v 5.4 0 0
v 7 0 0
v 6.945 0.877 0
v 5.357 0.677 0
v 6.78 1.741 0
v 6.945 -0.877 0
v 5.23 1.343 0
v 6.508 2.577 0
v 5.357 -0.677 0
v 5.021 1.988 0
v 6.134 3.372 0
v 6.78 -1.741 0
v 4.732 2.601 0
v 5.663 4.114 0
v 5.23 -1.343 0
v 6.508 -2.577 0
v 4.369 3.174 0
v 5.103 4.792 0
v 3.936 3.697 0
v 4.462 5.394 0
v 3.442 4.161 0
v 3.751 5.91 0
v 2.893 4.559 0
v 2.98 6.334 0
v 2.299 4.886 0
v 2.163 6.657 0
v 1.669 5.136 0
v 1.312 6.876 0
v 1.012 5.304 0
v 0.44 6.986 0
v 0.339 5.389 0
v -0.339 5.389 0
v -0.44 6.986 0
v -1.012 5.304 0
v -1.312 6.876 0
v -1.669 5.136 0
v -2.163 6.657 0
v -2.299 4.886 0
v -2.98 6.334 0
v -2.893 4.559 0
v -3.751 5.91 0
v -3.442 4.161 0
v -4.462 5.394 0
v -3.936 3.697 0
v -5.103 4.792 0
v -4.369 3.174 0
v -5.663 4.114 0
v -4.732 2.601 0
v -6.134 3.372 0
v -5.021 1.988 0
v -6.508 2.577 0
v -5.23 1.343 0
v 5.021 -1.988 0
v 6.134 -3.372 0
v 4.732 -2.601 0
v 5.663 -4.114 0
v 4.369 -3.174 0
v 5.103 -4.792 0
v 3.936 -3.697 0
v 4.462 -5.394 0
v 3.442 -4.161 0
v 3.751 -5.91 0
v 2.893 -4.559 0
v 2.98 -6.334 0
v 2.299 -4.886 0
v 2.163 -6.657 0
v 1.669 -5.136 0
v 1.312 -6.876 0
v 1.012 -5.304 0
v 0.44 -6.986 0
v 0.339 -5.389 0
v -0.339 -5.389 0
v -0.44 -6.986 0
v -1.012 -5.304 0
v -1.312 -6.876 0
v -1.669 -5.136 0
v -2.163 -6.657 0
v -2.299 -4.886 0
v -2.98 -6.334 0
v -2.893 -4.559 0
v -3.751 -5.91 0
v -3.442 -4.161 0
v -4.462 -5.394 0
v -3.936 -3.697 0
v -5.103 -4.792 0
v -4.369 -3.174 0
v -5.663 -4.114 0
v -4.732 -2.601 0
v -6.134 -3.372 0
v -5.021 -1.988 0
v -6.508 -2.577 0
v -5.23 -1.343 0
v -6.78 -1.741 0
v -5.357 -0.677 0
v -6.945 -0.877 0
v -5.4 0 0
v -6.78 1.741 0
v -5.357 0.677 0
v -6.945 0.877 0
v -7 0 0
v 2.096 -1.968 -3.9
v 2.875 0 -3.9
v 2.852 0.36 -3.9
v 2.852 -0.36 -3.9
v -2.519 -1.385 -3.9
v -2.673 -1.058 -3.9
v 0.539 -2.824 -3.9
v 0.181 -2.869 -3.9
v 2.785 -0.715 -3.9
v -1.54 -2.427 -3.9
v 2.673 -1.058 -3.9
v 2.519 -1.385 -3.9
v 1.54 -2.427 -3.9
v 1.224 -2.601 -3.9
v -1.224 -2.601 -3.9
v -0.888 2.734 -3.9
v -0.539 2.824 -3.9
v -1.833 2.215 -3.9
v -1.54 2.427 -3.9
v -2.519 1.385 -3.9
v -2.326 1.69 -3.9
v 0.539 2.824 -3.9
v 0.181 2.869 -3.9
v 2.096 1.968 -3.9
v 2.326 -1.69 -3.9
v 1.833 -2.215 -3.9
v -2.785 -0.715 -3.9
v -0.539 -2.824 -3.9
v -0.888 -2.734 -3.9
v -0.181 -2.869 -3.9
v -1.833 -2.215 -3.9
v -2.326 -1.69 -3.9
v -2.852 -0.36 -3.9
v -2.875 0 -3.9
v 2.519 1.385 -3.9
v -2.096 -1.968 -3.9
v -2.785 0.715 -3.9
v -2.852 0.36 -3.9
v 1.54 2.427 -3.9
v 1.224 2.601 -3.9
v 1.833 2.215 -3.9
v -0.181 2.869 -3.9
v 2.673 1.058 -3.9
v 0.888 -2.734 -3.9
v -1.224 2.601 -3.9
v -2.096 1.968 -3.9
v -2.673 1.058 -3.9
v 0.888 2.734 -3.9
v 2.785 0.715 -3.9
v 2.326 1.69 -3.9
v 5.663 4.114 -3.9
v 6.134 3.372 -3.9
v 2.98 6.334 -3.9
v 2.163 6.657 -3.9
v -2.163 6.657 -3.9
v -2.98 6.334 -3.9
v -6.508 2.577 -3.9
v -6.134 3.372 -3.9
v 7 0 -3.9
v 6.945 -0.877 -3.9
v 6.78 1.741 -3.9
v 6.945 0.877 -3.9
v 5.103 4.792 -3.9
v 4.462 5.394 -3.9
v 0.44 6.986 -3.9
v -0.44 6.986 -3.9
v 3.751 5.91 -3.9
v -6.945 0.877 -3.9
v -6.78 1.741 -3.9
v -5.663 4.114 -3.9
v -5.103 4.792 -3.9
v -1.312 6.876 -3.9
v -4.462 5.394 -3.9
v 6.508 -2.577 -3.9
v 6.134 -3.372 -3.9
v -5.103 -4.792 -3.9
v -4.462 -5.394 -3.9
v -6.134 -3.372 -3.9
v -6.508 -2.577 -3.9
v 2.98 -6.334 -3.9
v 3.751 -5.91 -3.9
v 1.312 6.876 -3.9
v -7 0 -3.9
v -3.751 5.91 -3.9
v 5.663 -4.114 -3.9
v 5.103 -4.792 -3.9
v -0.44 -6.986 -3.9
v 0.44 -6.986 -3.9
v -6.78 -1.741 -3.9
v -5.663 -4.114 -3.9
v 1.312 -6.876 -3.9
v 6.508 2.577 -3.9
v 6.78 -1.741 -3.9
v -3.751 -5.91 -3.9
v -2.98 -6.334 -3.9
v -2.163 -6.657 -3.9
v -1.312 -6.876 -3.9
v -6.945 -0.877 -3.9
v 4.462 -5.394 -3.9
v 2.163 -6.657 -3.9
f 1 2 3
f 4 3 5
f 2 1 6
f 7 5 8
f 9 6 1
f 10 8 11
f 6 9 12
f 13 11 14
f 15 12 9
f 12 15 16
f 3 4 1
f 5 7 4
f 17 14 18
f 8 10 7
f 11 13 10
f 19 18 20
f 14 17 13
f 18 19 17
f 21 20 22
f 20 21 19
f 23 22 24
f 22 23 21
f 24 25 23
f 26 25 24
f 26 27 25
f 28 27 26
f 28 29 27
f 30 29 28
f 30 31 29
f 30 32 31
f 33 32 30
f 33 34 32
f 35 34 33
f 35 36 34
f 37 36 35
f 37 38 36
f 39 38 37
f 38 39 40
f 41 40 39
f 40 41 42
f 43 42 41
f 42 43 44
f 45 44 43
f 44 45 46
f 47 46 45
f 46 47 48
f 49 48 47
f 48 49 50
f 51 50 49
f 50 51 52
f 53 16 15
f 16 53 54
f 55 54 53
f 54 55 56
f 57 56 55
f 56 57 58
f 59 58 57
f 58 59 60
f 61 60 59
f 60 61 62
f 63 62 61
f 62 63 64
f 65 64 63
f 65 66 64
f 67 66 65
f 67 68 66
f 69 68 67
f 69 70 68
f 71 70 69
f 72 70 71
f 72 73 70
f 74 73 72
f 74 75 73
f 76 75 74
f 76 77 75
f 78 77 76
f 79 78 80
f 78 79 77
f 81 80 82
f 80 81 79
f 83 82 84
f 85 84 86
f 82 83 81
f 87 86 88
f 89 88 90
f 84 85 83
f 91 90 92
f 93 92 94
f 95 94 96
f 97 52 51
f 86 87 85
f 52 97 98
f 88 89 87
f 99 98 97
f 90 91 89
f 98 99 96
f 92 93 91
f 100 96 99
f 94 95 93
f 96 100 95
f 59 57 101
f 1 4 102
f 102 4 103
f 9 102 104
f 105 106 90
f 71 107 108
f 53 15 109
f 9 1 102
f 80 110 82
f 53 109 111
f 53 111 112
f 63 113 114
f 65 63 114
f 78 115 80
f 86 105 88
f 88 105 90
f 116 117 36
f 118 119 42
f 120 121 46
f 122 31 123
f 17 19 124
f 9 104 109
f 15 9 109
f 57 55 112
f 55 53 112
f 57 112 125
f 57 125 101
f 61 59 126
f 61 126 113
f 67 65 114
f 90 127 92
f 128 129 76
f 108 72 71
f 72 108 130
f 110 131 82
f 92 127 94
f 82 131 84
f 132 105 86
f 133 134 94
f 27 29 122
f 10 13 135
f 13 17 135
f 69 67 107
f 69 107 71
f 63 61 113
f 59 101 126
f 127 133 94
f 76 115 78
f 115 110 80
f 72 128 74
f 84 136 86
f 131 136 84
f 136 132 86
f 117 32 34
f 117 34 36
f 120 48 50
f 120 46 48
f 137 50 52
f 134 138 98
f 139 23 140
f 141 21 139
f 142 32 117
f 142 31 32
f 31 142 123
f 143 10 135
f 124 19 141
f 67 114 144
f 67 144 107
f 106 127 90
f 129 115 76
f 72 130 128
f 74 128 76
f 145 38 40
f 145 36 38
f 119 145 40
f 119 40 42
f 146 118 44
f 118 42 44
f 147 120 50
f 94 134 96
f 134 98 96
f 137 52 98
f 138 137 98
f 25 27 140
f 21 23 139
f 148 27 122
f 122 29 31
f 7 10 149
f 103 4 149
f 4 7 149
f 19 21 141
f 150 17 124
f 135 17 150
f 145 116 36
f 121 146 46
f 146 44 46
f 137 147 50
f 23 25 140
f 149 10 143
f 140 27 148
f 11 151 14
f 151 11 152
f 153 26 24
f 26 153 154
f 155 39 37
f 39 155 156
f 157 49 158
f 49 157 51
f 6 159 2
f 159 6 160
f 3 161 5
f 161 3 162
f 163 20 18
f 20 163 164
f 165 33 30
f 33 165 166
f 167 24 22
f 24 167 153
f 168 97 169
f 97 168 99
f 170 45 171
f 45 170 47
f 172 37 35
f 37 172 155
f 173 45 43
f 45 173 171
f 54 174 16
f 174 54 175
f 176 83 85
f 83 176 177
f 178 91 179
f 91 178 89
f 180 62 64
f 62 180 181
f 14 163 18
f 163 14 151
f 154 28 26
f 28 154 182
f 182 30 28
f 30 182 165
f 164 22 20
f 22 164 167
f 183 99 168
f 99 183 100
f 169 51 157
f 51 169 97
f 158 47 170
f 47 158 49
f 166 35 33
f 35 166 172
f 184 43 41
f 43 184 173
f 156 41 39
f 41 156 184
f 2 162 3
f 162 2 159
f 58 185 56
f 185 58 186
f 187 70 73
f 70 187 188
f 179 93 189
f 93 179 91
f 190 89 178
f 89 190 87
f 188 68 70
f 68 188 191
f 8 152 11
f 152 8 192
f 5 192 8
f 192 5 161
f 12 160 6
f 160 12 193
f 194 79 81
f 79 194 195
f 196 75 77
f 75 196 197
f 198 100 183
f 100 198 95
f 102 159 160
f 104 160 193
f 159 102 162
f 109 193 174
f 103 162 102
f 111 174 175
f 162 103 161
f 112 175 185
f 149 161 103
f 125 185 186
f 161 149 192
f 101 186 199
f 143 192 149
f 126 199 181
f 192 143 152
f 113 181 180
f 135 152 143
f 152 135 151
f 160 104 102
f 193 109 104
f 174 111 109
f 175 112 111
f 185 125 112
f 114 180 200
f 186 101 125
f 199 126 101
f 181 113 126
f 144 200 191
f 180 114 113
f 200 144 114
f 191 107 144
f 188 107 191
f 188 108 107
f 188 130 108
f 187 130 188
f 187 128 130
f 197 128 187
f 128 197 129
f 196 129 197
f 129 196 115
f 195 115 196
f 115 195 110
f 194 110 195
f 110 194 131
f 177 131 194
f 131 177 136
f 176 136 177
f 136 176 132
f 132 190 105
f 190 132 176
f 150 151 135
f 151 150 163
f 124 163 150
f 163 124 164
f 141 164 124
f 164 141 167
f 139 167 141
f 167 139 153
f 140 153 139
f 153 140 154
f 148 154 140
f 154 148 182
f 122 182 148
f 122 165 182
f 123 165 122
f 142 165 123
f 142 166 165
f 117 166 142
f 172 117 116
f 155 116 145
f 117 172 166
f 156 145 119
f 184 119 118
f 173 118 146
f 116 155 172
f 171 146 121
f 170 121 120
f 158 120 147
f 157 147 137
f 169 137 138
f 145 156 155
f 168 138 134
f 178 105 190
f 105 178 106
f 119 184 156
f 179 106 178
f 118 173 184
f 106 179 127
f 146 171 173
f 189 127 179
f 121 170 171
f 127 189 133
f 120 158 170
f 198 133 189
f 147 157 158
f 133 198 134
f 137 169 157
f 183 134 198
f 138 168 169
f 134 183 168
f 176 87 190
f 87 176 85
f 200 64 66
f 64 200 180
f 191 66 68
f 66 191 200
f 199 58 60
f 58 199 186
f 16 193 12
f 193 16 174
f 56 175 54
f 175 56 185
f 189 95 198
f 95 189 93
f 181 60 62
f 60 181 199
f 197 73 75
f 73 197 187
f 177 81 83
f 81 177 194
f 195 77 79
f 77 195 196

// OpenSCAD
$fn = 50;

difference() {
	union() {
		translate(v = [0, 0, -3.9]) {
			cylinder(h = 3.9, r = 7.0);
		}
	}
	union() {
		translate(v = [0, 0, 0]) {
			rotate(a = [0, 0, 0]) {
				difference() {
					union() {
						translate(v = [0, 0, -6.9]) {
							cylinder(h = 6.9, r = 2.6);
						}
						translate(v = [0, 0, -3.9]) {
							cylinder(h = 3.9, r1 = 2.875, r2 = 5.4);
						}
						translate(v = [0, 0, -6.9]) {
							cylinder(h = 6.9, r = 2.875);
						}
						translate(v = [0, 0, -6.9]) {
							cylinder(h = 6.9, r = 2.6);
						}
					}
					union();
				}
			}
		}
	}
}
